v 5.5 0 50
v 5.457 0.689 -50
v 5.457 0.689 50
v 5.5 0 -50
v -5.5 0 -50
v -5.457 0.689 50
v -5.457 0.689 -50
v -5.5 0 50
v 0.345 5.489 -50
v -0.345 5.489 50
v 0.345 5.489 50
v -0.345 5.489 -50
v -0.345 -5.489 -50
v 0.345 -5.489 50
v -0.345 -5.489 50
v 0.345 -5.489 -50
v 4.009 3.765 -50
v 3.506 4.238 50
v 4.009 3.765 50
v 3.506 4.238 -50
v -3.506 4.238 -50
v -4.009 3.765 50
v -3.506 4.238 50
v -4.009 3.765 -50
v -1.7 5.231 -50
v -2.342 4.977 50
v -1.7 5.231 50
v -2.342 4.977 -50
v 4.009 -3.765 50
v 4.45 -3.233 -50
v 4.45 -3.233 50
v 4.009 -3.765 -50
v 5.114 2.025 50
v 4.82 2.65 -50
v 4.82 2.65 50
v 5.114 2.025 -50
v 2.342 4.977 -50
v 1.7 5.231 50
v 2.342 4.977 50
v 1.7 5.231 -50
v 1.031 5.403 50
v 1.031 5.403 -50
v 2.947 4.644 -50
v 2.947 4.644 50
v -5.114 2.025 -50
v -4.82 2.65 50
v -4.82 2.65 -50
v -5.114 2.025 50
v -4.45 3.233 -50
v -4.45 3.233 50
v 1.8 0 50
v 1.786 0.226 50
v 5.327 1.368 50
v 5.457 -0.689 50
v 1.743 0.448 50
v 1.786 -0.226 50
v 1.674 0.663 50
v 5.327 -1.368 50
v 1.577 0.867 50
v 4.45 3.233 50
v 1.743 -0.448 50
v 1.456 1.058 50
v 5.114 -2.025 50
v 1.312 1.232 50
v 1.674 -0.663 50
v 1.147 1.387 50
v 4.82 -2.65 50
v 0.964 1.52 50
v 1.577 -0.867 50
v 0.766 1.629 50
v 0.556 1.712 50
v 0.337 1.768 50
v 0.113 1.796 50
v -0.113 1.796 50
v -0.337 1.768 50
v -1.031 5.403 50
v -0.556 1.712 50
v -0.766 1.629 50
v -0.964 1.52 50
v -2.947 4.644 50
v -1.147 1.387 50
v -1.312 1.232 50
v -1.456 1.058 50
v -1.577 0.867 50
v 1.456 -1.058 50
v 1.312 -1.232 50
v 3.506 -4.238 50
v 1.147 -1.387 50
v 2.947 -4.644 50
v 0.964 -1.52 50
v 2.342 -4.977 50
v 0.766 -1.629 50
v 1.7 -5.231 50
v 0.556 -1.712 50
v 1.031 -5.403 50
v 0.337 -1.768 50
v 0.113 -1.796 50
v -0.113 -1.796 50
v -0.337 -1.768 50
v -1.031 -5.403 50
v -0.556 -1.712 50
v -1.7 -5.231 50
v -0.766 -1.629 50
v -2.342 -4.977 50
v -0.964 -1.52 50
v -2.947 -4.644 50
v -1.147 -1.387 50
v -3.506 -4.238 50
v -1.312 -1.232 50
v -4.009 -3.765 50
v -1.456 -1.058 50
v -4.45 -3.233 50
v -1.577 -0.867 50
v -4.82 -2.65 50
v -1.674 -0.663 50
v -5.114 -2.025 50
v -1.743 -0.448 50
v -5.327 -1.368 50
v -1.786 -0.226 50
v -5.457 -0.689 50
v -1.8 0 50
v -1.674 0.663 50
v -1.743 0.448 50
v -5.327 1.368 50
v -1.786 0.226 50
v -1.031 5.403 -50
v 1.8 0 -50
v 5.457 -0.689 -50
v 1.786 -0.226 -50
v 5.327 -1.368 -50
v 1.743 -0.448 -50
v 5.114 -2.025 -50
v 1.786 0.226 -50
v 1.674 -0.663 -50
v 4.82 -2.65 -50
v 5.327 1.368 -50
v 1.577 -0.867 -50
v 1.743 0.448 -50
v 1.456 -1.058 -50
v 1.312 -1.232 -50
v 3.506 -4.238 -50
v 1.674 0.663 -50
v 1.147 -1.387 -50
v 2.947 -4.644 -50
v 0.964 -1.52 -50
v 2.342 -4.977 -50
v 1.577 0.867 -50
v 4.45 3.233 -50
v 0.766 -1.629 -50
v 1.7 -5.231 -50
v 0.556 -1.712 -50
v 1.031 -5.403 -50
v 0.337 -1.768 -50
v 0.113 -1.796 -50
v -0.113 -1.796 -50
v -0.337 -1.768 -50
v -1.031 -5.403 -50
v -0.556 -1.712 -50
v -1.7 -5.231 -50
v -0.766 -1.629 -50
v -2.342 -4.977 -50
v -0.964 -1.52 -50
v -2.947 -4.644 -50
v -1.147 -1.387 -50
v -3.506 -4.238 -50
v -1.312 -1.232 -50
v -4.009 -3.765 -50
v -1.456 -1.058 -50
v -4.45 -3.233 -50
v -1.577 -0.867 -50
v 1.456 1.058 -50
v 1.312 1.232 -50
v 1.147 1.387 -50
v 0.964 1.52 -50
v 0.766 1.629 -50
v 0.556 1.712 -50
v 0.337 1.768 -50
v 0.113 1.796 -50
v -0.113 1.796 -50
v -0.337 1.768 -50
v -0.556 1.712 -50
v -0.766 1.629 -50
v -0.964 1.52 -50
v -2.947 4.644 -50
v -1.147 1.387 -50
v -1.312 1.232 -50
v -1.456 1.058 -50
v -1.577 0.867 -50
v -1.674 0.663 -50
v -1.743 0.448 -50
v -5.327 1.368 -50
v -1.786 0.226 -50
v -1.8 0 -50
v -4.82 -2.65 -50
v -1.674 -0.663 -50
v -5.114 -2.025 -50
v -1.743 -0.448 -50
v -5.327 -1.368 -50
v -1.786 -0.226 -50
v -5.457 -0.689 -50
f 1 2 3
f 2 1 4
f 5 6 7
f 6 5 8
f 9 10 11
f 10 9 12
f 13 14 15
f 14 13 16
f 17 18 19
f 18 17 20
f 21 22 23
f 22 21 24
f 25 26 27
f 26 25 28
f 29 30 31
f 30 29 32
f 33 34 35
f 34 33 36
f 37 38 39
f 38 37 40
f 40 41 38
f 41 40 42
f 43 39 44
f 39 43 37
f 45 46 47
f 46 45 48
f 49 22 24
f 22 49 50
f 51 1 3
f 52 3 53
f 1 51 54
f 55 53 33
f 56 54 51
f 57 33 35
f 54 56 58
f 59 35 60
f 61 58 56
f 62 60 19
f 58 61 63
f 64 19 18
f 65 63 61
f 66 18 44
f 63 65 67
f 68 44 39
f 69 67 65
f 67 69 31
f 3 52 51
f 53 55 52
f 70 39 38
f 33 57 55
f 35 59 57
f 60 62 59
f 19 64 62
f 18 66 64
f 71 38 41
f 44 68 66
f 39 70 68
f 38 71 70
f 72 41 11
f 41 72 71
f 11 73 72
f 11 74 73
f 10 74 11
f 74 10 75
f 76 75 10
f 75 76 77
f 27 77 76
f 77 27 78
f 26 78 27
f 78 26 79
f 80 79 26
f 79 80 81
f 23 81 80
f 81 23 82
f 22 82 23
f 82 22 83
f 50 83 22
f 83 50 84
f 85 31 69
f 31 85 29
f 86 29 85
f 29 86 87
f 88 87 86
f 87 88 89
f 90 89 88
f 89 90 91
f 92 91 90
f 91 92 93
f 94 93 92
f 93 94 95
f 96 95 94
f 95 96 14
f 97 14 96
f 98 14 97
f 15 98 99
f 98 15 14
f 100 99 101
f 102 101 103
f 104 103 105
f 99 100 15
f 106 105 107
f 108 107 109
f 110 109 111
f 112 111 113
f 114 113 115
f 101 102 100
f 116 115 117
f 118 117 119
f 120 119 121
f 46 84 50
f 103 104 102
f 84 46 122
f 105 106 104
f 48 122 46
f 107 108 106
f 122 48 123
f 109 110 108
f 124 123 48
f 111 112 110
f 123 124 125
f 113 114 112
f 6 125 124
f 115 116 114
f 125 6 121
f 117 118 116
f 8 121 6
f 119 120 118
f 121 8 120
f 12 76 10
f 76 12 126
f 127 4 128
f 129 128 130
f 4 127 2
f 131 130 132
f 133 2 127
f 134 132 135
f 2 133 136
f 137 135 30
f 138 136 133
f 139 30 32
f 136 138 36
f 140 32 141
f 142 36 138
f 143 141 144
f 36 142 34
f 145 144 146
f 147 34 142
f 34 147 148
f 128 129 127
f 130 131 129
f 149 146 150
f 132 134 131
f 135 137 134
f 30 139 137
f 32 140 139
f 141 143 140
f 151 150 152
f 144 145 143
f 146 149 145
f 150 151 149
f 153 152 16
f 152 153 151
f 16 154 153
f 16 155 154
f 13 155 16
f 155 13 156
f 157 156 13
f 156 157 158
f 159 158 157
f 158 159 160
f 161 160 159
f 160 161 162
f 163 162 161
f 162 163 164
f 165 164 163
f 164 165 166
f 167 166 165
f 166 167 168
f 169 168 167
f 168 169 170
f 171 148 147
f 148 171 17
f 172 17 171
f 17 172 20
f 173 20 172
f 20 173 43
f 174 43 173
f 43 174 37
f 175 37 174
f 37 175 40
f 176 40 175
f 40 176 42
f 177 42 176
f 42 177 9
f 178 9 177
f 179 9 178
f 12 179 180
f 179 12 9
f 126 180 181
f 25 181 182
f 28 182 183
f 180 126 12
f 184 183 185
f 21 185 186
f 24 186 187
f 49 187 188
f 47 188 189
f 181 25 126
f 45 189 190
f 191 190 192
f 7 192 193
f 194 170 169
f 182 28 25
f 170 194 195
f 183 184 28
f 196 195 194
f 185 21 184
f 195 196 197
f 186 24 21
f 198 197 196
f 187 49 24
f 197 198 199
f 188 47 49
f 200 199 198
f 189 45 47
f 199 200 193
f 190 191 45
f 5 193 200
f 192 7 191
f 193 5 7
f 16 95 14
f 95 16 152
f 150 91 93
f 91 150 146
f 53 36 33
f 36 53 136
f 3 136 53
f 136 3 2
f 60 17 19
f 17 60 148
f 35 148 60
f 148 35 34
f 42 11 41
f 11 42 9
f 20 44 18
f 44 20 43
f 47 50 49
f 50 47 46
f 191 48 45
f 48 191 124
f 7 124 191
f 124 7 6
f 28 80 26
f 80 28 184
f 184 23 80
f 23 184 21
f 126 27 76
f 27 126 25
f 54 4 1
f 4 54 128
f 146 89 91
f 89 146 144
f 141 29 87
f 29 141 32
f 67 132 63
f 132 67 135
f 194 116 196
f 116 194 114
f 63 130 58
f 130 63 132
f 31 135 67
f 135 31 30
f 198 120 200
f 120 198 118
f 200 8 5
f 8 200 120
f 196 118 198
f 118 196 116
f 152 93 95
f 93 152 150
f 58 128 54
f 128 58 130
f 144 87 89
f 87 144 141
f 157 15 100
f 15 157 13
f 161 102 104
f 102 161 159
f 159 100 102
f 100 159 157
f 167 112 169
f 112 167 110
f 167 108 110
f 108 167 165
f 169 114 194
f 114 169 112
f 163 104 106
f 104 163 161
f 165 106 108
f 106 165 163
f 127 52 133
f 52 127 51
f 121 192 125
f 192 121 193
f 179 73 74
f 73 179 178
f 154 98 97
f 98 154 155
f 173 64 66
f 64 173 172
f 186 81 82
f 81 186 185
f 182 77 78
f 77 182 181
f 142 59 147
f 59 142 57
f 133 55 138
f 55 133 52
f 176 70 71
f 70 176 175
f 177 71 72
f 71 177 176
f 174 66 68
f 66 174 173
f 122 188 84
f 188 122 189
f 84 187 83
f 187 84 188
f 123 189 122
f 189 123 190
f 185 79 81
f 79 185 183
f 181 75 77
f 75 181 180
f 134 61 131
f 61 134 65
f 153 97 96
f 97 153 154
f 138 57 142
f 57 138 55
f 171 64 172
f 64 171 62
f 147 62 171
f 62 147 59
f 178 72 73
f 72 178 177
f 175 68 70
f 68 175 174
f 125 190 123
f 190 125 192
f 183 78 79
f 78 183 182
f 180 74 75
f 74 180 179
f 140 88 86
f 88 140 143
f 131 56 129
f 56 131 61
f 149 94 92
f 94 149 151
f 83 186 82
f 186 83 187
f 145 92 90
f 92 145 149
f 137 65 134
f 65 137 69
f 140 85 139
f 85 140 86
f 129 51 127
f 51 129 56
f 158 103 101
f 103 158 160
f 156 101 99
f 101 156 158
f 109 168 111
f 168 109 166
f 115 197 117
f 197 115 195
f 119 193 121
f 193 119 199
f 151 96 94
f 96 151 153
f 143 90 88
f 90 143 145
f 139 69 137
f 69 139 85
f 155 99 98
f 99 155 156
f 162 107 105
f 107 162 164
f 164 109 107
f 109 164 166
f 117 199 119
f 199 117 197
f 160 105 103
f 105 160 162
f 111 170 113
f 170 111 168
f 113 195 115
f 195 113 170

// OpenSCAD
$fn = 50;


difference() {
	union() {
		translate(v = [0, 0, -50.0000000000]) {
			cylinder(h = 100, r = 5.5000000000);
		}
	}
	union() {
		translate(v = [0, 0, -100.0000000000]) {
			cylinder(h = 200, r = 1.8000000000);
		}
	}
}
